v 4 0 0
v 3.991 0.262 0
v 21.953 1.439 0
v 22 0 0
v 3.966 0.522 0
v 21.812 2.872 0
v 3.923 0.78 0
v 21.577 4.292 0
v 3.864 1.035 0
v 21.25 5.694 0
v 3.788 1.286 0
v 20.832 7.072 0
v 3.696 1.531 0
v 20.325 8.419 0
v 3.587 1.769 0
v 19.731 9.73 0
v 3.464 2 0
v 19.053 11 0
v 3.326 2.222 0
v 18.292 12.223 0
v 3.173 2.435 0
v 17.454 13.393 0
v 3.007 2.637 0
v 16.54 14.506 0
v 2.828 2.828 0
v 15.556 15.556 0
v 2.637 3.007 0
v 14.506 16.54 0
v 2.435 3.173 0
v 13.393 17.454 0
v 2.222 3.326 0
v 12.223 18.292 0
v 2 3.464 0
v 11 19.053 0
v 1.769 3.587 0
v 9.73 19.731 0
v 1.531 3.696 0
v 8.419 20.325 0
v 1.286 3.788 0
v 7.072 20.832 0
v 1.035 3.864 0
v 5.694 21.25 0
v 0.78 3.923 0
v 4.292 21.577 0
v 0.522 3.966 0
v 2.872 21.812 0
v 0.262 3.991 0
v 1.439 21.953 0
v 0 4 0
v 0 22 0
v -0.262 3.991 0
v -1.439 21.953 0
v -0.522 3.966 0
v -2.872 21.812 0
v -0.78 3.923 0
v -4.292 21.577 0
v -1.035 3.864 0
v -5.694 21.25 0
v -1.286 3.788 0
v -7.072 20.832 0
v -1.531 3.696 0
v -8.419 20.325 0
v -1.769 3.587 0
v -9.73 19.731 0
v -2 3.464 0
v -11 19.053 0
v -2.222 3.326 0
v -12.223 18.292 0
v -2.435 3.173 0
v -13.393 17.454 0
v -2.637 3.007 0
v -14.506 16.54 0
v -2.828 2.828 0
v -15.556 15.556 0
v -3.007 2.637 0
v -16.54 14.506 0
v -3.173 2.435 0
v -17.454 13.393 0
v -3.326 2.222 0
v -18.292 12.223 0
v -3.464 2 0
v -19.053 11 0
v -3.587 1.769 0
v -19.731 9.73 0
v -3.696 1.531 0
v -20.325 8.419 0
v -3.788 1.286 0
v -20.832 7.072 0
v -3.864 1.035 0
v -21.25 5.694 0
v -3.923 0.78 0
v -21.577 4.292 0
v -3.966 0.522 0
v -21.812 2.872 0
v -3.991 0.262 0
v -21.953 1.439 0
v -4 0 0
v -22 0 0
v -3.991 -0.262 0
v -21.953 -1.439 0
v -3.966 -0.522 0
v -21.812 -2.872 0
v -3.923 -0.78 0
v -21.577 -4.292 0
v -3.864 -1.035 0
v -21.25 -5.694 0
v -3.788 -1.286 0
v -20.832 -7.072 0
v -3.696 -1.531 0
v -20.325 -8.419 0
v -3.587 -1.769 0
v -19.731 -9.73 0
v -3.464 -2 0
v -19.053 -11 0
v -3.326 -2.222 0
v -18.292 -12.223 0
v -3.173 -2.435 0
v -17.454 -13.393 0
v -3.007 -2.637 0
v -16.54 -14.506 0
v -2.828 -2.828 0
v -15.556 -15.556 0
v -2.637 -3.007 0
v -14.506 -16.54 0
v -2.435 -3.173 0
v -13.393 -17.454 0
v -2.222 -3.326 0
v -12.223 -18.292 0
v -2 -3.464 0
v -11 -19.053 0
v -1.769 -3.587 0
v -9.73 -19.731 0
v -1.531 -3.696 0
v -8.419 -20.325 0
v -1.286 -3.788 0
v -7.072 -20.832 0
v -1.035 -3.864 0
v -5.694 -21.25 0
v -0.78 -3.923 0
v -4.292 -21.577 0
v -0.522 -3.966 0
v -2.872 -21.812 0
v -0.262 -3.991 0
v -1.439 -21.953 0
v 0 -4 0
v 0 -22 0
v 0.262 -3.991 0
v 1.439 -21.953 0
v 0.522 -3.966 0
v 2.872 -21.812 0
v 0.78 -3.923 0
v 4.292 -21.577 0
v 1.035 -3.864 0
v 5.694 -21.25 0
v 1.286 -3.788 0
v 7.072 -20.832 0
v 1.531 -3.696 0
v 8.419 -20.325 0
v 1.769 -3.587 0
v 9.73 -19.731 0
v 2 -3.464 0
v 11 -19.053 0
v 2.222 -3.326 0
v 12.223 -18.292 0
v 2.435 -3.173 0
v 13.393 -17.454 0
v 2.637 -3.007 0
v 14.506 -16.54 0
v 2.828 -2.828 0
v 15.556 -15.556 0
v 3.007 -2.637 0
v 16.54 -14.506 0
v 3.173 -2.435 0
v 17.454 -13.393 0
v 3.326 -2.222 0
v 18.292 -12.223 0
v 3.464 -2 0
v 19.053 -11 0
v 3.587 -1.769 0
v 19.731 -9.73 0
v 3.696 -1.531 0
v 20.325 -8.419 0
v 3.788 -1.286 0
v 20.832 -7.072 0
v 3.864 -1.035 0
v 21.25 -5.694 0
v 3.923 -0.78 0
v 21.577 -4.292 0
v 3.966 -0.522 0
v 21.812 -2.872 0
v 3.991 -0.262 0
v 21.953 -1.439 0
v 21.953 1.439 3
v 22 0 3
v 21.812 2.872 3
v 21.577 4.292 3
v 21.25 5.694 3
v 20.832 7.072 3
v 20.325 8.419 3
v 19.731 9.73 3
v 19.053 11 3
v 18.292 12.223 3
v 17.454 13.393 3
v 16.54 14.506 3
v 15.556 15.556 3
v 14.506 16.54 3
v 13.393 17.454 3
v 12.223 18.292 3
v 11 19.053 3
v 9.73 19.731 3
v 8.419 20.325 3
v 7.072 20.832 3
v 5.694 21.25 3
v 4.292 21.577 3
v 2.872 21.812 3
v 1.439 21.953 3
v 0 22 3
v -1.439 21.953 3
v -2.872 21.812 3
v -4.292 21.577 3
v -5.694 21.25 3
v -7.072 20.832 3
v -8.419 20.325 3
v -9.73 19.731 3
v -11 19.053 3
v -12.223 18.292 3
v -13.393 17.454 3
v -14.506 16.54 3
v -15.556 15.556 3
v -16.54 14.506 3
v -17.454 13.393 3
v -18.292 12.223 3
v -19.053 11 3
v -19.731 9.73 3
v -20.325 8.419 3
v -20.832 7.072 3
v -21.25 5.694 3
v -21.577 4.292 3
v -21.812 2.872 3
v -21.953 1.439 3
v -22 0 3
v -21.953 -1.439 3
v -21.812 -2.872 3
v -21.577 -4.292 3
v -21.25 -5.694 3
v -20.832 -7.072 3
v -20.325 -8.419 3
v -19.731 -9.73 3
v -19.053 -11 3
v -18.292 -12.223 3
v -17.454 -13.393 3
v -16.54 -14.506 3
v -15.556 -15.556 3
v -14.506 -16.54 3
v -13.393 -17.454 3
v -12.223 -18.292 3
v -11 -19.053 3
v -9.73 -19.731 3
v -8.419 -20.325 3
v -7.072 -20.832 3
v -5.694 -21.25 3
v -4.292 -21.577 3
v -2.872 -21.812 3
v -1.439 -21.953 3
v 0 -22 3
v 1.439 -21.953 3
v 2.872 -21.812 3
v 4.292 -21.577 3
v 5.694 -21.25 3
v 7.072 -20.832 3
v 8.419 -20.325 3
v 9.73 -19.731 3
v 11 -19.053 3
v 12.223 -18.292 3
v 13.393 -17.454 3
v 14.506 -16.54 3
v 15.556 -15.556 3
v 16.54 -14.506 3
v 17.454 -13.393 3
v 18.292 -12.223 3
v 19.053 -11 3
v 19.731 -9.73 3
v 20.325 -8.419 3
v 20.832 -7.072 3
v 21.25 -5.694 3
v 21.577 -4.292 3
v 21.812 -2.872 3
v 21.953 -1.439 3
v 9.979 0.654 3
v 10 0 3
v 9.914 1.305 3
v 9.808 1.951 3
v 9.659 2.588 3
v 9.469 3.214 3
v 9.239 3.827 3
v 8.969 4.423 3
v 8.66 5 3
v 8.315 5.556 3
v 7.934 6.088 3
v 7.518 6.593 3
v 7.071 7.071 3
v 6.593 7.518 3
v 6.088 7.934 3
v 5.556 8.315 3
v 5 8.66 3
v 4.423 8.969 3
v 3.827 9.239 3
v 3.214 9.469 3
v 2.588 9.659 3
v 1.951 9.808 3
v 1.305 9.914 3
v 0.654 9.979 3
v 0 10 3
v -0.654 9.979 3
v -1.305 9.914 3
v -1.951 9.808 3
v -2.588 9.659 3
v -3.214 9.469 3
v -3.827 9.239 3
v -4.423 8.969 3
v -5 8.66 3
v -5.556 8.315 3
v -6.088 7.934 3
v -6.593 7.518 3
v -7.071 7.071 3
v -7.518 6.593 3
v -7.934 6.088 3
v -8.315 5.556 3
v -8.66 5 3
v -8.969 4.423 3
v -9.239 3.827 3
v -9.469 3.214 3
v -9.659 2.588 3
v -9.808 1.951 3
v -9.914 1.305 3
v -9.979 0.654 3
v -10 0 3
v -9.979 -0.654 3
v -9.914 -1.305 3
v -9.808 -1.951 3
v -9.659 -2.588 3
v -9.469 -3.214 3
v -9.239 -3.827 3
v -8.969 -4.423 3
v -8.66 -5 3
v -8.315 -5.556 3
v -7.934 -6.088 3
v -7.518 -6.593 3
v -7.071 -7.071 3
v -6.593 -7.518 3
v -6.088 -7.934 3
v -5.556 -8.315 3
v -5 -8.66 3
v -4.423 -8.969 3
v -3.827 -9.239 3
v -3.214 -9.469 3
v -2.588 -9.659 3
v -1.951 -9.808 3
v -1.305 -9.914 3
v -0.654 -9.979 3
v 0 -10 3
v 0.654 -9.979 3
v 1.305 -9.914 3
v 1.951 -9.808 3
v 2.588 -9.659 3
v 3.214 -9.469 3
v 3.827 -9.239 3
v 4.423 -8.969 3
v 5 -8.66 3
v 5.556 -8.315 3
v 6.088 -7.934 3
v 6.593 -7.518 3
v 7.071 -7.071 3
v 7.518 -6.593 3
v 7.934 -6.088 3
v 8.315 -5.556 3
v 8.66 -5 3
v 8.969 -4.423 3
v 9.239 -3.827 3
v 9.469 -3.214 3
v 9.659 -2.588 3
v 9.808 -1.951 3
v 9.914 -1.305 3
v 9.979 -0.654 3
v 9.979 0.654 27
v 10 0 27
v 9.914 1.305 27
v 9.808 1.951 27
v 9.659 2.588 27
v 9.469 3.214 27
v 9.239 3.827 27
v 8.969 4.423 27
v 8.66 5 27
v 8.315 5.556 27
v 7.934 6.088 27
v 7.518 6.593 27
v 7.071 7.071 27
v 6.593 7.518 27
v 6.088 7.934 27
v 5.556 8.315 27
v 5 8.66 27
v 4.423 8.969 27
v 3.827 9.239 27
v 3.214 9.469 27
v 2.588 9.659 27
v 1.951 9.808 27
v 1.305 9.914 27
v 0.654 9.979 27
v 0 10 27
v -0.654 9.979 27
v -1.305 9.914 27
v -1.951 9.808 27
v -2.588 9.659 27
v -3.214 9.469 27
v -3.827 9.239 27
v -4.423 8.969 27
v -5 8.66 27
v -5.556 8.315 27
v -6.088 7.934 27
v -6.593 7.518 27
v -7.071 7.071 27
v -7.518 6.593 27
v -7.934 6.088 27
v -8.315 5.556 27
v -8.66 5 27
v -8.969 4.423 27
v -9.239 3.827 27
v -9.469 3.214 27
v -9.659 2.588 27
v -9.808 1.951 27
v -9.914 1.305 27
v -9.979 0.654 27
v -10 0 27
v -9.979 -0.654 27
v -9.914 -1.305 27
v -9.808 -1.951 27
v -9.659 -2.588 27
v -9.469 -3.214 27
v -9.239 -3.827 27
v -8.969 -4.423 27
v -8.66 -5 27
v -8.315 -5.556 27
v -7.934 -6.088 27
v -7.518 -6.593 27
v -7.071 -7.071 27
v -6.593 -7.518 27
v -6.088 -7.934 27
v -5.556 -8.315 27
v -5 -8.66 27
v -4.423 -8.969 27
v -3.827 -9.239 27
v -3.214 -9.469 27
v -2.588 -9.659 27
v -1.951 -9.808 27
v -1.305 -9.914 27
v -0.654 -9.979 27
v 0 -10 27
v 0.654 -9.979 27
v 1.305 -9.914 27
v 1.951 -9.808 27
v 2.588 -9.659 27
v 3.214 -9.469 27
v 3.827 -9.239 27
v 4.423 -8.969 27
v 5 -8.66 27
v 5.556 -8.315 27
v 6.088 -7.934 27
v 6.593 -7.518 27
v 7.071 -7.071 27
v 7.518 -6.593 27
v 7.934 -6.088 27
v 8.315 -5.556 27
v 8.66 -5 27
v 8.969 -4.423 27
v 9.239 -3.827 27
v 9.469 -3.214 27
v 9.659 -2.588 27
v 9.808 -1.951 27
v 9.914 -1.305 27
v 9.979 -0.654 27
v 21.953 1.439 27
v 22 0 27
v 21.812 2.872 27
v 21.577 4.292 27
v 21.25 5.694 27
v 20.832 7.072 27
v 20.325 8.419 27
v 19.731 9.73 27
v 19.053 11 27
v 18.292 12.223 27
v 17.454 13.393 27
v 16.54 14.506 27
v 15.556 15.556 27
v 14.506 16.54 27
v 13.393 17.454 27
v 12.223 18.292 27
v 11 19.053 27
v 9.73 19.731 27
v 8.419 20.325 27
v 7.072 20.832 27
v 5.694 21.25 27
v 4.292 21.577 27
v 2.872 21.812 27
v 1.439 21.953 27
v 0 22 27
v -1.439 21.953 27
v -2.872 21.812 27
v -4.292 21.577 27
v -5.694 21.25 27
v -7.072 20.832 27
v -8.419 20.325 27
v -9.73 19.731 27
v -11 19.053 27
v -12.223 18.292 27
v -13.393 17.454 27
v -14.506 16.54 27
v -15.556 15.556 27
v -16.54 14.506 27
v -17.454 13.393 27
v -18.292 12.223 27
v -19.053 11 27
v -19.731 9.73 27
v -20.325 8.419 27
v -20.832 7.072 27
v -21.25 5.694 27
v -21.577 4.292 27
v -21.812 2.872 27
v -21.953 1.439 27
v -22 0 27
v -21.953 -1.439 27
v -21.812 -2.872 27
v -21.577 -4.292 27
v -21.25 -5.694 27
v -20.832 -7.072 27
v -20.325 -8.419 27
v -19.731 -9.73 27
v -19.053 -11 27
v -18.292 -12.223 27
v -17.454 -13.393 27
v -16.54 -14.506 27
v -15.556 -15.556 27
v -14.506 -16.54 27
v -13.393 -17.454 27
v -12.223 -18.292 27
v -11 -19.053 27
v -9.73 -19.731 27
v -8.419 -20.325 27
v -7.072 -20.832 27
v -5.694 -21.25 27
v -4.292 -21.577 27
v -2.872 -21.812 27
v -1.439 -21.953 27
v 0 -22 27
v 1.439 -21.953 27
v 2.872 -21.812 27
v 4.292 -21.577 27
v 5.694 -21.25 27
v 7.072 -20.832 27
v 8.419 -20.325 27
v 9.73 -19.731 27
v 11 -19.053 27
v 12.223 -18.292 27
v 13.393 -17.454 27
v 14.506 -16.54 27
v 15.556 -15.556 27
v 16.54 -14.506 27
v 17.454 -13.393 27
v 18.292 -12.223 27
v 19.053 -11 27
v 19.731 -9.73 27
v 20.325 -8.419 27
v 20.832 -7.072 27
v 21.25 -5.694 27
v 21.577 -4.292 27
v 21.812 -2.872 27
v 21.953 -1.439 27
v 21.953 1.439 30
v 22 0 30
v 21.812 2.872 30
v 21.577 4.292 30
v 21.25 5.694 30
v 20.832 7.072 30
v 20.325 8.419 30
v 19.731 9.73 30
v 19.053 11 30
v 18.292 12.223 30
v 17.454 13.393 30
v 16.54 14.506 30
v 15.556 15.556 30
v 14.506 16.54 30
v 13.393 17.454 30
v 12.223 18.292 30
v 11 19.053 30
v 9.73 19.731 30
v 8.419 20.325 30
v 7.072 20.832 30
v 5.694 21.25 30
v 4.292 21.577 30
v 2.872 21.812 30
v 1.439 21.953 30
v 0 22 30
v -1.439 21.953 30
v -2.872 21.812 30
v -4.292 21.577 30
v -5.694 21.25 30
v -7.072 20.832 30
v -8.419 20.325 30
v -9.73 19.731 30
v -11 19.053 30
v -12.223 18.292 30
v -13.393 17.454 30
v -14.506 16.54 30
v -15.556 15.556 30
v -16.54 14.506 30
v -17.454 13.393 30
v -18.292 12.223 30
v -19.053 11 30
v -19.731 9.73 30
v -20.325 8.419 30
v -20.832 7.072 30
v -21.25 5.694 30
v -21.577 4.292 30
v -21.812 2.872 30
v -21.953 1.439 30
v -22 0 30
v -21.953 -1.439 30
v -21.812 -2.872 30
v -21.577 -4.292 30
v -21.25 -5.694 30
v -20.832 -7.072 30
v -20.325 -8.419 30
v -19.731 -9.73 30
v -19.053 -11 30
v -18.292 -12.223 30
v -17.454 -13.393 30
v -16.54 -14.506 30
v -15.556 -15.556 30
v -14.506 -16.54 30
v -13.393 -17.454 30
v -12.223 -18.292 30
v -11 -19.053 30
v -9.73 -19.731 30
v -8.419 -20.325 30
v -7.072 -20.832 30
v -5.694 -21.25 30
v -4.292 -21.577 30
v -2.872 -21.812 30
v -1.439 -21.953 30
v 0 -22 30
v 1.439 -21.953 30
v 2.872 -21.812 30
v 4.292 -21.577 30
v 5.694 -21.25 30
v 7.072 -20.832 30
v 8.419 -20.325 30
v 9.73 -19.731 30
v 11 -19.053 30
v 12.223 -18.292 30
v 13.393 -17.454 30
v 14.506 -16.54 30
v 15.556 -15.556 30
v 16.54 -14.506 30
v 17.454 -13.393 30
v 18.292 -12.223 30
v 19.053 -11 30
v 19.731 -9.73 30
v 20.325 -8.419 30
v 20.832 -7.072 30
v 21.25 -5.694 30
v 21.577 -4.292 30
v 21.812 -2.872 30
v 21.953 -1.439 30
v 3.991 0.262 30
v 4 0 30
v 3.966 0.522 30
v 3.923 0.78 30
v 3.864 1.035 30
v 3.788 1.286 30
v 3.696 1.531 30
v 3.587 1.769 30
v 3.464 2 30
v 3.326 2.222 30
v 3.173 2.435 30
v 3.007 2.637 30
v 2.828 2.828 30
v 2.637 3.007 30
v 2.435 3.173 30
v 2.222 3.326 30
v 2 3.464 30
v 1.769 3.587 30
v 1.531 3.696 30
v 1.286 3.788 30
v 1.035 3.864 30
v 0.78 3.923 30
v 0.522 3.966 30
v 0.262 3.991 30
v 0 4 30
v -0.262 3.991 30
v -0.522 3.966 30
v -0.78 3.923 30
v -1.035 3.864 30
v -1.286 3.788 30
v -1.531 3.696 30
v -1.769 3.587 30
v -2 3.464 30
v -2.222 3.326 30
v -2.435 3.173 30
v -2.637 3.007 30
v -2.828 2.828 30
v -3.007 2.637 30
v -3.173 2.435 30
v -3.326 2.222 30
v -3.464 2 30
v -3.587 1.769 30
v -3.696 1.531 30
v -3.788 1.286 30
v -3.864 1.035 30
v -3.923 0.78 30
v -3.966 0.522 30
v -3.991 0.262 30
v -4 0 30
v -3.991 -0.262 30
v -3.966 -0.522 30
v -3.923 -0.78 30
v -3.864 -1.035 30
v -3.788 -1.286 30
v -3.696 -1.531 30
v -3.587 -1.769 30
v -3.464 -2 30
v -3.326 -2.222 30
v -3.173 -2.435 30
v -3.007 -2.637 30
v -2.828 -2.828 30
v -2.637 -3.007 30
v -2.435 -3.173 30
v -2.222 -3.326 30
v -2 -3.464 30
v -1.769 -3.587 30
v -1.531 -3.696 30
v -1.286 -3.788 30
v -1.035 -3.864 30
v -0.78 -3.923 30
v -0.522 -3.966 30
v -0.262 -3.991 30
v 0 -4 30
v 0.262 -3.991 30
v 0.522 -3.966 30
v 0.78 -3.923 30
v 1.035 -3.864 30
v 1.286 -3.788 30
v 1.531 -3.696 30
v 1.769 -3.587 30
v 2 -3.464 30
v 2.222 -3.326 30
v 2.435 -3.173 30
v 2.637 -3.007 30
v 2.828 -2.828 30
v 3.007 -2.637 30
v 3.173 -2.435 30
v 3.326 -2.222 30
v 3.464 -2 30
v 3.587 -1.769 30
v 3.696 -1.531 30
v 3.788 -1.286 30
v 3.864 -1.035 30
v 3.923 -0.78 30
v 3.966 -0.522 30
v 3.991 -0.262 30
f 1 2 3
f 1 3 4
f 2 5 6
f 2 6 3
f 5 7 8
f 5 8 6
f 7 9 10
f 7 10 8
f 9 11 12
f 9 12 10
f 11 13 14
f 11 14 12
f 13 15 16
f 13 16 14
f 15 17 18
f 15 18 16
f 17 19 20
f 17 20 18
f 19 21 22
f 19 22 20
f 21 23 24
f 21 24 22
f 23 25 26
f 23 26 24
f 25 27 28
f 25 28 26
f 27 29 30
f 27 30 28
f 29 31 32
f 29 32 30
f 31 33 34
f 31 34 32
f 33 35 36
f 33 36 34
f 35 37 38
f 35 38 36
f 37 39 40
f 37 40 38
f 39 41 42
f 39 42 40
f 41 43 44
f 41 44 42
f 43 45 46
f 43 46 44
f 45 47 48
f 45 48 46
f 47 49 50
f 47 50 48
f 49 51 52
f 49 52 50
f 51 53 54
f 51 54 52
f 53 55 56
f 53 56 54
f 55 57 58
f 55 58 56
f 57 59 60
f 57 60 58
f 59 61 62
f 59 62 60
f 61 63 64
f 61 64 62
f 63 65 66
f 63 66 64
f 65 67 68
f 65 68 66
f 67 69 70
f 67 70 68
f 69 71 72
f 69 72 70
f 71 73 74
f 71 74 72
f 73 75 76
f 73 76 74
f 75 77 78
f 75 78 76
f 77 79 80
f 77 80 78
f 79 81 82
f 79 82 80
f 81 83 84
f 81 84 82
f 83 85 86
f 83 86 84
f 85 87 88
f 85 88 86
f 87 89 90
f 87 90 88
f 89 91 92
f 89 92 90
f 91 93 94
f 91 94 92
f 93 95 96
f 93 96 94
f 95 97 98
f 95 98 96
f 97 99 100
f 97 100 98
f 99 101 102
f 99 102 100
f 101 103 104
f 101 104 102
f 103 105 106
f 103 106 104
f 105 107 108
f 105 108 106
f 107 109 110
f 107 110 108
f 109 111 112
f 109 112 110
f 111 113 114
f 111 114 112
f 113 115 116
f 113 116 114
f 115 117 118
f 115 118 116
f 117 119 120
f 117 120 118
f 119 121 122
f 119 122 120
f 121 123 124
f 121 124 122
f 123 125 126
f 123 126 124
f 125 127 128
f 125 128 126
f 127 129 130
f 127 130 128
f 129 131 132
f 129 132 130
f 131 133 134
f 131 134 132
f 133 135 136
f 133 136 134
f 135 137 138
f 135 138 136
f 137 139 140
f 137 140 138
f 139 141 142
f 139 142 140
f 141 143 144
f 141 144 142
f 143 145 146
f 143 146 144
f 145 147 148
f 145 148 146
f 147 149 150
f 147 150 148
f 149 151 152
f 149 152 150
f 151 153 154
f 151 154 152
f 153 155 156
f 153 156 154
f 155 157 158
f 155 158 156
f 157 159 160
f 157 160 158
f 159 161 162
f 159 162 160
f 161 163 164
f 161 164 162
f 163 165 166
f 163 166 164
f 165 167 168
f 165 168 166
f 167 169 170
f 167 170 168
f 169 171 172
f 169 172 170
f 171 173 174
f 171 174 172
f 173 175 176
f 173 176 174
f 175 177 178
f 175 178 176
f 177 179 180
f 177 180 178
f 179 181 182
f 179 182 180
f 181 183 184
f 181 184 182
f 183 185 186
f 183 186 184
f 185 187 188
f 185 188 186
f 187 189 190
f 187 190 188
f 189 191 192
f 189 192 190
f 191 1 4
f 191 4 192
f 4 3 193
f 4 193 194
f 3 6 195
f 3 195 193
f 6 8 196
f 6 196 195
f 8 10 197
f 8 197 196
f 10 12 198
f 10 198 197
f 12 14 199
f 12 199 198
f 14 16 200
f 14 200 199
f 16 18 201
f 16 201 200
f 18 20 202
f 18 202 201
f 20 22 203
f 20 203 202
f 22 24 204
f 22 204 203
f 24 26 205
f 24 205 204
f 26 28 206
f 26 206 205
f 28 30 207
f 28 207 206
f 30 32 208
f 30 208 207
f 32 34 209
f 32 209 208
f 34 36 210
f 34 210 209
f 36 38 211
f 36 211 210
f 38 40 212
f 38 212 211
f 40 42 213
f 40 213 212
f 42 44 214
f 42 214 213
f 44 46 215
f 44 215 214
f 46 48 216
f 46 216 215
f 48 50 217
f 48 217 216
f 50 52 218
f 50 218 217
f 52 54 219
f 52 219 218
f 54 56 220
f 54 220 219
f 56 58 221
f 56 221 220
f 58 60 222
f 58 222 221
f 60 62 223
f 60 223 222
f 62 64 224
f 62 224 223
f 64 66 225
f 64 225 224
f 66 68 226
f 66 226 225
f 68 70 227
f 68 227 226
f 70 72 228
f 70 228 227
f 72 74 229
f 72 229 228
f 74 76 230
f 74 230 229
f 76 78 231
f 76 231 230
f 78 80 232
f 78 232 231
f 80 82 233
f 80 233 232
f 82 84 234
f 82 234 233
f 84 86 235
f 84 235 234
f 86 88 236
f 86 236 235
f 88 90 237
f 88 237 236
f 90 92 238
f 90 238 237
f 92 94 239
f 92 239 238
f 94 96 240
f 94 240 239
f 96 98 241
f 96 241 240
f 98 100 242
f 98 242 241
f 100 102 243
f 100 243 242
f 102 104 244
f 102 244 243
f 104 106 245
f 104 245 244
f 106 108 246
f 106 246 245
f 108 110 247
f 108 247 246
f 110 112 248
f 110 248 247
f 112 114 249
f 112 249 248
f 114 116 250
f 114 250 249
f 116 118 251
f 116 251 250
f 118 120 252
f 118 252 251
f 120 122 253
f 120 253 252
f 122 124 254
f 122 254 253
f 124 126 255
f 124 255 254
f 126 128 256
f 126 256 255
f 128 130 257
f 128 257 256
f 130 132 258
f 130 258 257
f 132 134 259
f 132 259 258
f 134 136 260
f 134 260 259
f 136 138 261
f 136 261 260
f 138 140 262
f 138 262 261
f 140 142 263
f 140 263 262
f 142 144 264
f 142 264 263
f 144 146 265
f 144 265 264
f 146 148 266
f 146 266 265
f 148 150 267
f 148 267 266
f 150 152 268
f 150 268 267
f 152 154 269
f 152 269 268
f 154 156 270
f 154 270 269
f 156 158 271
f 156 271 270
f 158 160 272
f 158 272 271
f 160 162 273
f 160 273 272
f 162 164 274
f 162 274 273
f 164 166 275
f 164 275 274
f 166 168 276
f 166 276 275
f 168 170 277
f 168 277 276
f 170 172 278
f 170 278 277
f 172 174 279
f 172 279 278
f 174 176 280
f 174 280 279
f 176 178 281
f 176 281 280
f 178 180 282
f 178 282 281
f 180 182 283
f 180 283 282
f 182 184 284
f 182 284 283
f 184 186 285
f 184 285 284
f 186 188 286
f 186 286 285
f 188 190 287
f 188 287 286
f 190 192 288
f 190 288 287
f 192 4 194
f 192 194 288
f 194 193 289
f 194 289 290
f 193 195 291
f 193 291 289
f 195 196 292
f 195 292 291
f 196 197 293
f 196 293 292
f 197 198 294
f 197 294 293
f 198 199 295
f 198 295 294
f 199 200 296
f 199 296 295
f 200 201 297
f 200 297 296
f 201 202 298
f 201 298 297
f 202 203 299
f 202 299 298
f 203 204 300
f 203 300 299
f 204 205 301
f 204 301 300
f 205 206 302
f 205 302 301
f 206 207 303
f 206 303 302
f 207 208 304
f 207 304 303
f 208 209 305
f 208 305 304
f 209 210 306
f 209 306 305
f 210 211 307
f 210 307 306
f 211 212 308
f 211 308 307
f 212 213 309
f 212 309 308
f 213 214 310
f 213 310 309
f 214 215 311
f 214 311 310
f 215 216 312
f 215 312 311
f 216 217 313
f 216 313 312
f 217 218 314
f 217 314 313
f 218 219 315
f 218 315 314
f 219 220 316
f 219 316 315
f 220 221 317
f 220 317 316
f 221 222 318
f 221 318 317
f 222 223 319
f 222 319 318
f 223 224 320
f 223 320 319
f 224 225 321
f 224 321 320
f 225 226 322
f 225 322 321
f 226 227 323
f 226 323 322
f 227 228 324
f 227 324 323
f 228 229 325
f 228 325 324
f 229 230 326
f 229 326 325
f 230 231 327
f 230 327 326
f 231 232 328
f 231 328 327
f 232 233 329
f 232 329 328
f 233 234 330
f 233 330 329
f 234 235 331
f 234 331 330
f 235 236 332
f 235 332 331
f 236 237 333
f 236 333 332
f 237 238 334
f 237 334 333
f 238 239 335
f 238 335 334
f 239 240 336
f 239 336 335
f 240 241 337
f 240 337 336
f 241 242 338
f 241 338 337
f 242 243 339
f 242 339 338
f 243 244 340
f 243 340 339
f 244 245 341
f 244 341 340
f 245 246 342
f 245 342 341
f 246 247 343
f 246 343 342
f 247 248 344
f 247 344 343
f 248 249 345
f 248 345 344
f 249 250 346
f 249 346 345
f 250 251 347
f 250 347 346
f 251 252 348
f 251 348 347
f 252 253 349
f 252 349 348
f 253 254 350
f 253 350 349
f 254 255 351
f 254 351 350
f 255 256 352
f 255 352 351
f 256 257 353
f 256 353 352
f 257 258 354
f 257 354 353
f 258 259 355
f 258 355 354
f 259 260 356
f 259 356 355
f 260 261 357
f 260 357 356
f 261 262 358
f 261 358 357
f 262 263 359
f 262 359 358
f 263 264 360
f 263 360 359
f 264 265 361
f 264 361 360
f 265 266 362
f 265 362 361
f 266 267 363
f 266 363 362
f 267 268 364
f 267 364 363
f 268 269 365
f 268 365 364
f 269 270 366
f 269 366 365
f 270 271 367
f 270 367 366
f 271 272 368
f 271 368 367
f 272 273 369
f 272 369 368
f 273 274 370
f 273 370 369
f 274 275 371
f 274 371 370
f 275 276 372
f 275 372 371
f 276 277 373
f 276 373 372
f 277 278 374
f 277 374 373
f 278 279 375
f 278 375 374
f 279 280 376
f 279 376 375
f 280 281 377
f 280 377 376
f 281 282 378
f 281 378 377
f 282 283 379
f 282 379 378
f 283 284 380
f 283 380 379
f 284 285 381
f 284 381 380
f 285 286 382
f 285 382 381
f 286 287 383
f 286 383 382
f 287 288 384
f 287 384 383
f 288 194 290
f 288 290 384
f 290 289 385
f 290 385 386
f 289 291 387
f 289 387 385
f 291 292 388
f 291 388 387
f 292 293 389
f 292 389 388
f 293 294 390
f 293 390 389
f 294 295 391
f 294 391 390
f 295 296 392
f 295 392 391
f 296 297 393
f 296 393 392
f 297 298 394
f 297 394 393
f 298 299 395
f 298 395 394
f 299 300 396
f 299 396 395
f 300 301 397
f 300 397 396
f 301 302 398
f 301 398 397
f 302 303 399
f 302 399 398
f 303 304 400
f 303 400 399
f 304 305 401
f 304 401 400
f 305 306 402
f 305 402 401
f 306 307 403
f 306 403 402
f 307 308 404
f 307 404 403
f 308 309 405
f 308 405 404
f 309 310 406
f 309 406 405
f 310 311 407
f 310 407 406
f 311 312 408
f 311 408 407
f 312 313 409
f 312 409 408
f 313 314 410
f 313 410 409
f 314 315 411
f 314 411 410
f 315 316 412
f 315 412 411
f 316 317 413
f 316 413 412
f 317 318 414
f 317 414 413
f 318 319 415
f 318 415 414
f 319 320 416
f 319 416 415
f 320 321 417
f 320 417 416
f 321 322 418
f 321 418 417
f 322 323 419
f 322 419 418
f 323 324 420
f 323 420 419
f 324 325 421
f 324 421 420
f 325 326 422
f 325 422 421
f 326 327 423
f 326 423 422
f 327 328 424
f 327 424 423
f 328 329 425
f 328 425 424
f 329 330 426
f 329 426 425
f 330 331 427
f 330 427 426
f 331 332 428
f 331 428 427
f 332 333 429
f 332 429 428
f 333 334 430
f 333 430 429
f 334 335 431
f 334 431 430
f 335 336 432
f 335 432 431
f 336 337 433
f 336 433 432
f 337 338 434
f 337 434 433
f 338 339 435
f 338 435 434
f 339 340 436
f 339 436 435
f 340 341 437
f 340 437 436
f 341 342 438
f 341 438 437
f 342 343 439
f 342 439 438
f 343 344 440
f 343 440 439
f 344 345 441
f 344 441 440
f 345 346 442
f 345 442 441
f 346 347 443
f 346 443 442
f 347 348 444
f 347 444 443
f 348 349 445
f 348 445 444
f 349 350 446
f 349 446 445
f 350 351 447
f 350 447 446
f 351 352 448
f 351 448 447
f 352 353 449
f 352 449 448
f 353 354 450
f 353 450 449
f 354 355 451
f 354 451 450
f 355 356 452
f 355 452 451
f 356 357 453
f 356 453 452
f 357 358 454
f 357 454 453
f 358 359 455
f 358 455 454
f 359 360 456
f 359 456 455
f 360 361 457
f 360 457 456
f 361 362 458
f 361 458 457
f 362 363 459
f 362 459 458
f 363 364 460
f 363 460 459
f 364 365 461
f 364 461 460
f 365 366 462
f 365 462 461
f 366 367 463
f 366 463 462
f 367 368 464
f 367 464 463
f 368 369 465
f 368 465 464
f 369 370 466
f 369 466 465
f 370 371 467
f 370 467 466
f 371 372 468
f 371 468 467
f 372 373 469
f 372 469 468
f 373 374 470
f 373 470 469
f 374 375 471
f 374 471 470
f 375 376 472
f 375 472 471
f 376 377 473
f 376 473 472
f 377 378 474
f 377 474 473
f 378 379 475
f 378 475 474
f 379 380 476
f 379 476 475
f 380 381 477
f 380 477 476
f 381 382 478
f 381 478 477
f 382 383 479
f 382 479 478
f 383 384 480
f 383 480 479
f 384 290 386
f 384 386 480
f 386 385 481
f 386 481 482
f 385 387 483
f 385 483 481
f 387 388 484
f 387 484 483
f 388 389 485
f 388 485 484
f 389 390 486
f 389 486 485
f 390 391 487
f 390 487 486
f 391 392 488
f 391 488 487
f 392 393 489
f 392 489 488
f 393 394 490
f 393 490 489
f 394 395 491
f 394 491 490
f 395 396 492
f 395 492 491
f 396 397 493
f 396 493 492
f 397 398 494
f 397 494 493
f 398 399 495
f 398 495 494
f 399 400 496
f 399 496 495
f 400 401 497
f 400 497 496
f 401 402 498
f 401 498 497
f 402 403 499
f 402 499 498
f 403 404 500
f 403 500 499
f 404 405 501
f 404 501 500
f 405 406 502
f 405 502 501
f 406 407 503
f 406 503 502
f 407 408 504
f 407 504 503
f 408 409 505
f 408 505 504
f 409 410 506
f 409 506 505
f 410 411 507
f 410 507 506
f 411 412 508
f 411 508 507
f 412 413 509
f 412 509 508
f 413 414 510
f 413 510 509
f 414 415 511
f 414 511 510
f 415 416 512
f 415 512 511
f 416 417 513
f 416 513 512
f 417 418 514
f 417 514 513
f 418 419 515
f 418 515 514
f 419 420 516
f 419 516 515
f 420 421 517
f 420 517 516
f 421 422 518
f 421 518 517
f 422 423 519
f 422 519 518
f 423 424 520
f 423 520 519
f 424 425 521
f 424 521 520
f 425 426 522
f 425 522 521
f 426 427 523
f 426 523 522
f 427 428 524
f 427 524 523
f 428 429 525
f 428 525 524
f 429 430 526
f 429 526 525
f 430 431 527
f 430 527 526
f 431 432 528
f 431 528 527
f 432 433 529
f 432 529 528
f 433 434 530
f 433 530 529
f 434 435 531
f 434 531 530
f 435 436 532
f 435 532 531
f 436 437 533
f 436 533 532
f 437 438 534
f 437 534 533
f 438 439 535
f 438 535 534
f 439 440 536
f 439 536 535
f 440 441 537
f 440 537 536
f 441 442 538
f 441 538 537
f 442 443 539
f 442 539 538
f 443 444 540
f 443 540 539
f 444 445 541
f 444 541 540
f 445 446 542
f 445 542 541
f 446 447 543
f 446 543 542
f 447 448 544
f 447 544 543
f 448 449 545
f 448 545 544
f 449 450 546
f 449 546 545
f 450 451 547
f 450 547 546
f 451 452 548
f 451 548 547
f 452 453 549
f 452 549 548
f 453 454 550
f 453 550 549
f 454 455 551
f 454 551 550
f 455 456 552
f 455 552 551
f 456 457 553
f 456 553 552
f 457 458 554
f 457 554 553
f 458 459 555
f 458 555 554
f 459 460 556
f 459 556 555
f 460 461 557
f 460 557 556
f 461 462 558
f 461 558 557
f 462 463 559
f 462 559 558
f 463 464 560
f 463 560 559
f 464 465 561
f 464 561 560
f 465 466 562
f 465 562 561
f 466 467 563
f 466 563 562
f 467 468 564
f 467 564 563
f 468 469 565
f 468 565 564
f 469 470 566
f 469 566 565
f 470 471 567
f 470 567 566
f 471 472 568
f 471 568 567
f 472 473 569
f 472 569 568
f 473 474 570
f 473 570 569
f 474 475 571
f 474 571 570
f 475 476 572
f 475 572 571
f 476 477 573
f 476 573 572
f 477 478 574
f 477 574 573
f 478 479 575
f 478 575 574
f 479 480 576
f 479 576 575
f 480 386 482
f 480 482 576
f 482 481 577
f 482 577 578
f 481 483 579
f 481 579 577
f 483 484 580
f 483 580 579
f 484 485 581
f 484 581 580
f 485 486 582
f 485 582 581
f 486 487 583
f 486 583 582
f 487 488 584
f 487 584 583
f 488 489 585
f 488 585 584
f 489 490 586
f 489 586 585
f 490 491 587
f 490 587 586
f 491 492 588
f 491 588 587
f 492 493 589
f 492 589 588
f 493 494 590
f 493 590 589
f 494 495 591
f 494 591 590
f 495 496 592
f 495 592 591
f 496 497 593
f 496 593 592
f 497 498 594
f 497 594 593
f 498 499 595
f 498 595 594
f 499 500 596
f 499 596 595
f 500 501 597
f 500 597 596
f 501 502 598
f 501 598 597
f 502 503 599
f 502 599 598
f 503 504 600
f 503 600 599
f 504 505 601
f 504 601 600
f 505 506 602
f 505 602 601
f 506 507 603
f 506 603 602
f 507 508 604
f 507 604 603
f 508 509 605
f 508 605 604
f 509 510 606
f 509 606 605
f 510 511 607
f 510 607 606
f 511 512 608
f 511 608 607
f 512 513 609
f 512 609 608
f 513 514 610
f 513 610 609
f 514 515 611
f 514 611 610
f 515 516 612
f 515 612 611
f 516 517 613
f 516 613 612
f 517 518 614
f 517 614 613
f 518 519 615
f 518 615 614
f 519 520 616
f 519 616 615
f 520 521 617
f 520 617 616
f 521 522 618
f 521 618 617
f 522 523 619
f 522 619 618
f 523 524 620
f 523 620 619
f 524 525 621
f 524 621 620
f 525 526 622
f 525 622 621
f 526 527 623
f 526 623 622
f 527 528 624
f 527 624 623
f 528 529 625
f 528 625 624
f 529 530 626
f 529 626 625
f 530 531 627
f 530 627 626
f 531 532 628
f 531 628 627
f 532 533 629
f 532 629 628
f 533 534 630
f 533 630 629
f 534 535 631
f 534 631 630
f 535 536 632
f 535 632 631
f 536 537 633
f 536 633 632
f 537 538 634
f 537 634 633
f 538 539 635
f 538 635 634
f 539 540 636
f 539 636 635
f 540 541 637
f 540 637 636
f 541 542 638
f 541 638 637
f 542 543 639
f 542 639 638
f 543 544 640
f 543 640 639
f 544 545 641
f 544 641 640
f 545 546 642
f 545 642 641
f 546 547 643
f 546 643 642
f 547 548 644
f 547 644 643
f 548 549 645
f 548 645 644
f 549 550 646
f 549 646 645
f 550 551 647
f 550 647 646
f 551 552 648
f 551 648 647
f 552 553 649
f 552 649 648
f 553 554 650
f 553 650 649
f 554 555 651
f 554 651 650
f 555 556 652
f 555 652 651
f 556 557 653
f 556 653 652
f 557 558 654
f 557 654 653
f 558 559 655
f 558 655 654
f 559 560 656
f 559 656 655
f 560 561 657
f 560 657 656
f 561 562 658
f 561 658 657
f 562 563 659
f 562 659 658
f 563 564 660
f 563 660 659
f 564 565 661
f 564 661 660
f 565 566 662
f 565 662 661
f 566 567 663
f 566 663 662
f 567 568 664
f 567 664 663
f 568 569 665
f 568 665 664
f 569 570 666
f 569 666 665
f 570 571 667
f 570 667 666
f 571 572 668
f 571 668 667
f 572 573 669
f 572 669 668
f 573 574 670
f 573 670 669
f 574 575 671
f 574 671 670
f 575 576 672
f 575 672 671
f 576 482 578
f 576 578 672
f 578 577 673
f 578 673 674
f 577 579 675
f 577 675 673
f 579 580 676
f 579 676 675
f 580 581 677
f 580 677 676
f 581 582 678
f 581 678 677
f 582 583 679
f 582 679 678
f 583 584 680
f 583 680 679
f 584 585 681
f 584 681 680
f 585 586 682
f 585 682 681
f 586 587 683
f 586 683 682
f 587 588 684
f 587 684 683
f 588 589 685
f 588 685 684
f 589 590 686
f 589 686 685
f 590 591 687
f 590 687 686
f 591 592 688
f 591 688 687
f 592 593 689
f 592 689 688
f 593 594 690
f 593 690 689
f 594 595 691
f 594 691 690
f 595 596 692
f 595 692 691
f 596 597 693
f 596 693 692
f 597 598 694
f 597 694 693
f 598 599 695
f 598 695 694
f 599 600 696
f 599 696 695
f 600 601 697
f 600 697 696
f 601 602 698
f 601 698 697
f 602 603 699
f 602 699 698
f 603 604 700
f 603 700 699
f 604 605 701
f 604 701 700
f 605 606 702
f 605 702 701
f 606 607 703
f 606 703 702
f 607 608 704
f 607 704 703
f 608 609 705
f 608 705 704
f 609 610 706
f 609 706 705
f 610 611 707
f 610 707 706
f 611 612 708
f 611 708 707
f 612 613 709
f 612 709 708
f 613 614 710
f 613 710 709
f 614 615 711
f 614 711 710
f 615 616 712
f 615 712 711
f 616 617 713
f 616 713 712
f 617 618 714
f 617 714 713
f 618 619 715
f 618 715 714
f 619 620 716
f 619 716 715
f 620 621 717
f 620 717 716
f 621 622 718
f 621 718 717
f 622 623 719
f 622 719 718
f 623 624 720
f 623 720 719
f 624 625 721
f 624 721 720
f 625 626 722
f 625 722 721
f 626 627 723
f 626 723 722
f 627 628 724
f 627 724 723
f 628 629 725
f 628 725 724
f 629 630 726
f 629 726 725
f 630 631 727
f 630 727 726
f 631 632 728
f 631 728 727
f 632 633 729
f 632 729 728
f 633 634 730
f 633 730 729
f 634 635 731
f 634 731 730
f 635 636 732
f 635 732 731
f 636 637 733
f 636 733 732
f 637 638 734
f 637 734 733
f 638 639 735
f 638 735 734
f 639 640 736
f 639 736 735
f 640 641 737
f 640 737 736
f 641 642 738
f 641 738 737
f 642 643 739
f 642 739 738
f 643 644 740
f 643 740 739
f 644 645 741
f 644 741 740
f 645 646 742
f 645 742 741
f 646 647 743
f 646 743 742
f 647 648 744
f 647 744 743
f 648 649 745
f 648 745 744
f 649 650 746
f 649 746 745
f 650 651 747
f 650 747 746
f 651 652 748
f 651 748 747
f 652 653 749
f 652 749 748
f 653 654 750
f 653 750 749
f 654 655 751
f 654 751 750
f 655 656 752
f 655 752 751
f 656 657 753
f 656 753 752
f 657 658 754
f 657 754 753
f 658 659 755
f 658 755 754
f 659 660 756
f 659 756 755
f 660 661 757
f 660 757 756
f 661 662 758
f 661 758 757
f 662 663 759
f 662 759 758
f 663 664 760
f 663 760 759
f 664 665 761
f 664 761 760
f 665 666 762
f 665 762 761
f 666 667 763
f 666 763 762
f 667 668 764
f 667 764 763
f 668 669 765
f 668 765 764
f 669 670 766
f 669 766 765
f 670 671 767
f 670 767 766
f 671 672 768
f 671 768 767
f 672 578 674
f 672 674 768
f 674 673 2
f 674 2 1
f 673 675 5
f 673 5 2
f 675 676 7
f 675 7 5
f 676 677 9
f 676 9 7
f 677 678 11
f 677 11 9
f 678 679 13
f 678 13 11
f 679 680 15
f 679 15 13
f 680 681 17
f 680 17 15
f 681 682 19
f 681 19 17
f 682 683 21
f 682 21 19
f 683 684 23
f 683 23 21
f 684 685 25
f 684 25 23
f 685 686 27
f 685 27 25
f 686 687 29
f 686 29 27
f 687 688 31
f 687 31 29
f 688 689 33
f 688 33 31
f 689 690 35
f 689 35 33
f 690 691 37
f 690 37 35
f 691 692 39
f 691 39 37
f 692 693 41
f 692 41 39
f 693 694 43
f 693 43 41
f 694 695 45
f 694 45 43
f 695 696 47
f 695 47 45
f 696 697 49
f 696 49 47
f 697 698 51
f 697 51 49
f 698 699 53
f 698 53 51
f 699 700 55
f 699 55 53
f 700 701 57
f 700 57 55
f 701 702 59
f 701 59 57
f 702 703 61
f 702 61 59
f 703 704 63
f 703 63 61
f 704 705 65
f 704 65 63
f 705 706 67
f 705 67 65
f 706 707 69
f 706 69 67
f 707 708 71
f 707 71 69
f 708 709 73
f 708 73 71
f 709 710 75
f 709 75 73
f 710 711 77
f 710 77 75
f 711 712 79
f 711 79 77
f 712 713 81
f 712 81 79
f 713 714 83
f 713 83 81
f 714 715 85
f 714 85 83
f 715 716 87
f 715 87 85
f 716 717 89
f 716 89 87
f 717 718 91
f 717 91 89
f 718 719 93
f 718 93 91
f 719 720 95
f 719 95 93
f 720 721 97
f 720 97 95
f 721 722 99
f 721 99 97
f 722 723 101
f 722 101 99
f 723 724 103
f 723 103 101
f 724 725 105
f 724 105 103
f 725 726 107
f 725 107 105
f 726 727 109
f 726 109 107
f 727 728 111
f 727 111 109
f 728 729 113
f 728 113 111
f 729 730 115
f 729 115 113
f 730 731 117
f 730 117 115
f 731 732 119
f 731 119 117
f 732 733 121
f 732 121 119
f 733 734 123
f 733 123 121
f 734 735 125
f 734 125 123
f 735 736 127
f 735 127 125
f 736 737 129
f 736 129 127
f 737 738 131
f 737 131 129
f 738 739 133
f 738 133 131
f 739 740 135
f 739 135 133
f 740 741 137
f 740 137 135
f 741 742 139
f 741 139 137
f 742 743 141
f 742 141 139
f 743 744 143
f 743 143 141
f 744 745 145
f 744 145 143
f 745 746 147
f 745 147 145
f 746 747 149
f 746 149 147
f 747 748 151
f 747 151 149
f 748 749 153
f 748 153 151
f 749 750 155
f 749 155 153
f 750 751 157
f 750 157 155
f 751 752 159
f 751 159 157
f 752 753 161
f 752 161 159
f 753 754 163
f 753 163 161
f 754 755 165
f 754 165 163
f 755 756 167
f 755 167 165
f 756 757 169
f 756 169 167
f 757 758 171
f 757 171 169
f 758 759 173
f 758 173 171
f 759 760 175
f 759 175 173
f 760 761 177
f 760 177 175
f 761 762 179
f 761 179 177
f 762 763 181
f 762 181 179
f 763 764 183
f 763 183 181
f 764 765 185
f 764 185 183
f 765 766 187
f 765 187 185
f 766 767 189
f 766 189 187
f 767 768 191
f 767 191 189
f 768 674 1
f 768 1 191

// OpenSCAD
// Original MechIntel educational model. CC0-1.0. Units: mm.
// Not a standardized or load-rated component.
$fn=96;
// Section points: [radius, height], mm. Edit to change the profile.
section=[[4, 0], [22, 0], [22, 3], [10, 3], [10, 27], [22, 27], [22, 30], [4, 30]];
rotate_extrude($fn=96) polygon(points=section);
